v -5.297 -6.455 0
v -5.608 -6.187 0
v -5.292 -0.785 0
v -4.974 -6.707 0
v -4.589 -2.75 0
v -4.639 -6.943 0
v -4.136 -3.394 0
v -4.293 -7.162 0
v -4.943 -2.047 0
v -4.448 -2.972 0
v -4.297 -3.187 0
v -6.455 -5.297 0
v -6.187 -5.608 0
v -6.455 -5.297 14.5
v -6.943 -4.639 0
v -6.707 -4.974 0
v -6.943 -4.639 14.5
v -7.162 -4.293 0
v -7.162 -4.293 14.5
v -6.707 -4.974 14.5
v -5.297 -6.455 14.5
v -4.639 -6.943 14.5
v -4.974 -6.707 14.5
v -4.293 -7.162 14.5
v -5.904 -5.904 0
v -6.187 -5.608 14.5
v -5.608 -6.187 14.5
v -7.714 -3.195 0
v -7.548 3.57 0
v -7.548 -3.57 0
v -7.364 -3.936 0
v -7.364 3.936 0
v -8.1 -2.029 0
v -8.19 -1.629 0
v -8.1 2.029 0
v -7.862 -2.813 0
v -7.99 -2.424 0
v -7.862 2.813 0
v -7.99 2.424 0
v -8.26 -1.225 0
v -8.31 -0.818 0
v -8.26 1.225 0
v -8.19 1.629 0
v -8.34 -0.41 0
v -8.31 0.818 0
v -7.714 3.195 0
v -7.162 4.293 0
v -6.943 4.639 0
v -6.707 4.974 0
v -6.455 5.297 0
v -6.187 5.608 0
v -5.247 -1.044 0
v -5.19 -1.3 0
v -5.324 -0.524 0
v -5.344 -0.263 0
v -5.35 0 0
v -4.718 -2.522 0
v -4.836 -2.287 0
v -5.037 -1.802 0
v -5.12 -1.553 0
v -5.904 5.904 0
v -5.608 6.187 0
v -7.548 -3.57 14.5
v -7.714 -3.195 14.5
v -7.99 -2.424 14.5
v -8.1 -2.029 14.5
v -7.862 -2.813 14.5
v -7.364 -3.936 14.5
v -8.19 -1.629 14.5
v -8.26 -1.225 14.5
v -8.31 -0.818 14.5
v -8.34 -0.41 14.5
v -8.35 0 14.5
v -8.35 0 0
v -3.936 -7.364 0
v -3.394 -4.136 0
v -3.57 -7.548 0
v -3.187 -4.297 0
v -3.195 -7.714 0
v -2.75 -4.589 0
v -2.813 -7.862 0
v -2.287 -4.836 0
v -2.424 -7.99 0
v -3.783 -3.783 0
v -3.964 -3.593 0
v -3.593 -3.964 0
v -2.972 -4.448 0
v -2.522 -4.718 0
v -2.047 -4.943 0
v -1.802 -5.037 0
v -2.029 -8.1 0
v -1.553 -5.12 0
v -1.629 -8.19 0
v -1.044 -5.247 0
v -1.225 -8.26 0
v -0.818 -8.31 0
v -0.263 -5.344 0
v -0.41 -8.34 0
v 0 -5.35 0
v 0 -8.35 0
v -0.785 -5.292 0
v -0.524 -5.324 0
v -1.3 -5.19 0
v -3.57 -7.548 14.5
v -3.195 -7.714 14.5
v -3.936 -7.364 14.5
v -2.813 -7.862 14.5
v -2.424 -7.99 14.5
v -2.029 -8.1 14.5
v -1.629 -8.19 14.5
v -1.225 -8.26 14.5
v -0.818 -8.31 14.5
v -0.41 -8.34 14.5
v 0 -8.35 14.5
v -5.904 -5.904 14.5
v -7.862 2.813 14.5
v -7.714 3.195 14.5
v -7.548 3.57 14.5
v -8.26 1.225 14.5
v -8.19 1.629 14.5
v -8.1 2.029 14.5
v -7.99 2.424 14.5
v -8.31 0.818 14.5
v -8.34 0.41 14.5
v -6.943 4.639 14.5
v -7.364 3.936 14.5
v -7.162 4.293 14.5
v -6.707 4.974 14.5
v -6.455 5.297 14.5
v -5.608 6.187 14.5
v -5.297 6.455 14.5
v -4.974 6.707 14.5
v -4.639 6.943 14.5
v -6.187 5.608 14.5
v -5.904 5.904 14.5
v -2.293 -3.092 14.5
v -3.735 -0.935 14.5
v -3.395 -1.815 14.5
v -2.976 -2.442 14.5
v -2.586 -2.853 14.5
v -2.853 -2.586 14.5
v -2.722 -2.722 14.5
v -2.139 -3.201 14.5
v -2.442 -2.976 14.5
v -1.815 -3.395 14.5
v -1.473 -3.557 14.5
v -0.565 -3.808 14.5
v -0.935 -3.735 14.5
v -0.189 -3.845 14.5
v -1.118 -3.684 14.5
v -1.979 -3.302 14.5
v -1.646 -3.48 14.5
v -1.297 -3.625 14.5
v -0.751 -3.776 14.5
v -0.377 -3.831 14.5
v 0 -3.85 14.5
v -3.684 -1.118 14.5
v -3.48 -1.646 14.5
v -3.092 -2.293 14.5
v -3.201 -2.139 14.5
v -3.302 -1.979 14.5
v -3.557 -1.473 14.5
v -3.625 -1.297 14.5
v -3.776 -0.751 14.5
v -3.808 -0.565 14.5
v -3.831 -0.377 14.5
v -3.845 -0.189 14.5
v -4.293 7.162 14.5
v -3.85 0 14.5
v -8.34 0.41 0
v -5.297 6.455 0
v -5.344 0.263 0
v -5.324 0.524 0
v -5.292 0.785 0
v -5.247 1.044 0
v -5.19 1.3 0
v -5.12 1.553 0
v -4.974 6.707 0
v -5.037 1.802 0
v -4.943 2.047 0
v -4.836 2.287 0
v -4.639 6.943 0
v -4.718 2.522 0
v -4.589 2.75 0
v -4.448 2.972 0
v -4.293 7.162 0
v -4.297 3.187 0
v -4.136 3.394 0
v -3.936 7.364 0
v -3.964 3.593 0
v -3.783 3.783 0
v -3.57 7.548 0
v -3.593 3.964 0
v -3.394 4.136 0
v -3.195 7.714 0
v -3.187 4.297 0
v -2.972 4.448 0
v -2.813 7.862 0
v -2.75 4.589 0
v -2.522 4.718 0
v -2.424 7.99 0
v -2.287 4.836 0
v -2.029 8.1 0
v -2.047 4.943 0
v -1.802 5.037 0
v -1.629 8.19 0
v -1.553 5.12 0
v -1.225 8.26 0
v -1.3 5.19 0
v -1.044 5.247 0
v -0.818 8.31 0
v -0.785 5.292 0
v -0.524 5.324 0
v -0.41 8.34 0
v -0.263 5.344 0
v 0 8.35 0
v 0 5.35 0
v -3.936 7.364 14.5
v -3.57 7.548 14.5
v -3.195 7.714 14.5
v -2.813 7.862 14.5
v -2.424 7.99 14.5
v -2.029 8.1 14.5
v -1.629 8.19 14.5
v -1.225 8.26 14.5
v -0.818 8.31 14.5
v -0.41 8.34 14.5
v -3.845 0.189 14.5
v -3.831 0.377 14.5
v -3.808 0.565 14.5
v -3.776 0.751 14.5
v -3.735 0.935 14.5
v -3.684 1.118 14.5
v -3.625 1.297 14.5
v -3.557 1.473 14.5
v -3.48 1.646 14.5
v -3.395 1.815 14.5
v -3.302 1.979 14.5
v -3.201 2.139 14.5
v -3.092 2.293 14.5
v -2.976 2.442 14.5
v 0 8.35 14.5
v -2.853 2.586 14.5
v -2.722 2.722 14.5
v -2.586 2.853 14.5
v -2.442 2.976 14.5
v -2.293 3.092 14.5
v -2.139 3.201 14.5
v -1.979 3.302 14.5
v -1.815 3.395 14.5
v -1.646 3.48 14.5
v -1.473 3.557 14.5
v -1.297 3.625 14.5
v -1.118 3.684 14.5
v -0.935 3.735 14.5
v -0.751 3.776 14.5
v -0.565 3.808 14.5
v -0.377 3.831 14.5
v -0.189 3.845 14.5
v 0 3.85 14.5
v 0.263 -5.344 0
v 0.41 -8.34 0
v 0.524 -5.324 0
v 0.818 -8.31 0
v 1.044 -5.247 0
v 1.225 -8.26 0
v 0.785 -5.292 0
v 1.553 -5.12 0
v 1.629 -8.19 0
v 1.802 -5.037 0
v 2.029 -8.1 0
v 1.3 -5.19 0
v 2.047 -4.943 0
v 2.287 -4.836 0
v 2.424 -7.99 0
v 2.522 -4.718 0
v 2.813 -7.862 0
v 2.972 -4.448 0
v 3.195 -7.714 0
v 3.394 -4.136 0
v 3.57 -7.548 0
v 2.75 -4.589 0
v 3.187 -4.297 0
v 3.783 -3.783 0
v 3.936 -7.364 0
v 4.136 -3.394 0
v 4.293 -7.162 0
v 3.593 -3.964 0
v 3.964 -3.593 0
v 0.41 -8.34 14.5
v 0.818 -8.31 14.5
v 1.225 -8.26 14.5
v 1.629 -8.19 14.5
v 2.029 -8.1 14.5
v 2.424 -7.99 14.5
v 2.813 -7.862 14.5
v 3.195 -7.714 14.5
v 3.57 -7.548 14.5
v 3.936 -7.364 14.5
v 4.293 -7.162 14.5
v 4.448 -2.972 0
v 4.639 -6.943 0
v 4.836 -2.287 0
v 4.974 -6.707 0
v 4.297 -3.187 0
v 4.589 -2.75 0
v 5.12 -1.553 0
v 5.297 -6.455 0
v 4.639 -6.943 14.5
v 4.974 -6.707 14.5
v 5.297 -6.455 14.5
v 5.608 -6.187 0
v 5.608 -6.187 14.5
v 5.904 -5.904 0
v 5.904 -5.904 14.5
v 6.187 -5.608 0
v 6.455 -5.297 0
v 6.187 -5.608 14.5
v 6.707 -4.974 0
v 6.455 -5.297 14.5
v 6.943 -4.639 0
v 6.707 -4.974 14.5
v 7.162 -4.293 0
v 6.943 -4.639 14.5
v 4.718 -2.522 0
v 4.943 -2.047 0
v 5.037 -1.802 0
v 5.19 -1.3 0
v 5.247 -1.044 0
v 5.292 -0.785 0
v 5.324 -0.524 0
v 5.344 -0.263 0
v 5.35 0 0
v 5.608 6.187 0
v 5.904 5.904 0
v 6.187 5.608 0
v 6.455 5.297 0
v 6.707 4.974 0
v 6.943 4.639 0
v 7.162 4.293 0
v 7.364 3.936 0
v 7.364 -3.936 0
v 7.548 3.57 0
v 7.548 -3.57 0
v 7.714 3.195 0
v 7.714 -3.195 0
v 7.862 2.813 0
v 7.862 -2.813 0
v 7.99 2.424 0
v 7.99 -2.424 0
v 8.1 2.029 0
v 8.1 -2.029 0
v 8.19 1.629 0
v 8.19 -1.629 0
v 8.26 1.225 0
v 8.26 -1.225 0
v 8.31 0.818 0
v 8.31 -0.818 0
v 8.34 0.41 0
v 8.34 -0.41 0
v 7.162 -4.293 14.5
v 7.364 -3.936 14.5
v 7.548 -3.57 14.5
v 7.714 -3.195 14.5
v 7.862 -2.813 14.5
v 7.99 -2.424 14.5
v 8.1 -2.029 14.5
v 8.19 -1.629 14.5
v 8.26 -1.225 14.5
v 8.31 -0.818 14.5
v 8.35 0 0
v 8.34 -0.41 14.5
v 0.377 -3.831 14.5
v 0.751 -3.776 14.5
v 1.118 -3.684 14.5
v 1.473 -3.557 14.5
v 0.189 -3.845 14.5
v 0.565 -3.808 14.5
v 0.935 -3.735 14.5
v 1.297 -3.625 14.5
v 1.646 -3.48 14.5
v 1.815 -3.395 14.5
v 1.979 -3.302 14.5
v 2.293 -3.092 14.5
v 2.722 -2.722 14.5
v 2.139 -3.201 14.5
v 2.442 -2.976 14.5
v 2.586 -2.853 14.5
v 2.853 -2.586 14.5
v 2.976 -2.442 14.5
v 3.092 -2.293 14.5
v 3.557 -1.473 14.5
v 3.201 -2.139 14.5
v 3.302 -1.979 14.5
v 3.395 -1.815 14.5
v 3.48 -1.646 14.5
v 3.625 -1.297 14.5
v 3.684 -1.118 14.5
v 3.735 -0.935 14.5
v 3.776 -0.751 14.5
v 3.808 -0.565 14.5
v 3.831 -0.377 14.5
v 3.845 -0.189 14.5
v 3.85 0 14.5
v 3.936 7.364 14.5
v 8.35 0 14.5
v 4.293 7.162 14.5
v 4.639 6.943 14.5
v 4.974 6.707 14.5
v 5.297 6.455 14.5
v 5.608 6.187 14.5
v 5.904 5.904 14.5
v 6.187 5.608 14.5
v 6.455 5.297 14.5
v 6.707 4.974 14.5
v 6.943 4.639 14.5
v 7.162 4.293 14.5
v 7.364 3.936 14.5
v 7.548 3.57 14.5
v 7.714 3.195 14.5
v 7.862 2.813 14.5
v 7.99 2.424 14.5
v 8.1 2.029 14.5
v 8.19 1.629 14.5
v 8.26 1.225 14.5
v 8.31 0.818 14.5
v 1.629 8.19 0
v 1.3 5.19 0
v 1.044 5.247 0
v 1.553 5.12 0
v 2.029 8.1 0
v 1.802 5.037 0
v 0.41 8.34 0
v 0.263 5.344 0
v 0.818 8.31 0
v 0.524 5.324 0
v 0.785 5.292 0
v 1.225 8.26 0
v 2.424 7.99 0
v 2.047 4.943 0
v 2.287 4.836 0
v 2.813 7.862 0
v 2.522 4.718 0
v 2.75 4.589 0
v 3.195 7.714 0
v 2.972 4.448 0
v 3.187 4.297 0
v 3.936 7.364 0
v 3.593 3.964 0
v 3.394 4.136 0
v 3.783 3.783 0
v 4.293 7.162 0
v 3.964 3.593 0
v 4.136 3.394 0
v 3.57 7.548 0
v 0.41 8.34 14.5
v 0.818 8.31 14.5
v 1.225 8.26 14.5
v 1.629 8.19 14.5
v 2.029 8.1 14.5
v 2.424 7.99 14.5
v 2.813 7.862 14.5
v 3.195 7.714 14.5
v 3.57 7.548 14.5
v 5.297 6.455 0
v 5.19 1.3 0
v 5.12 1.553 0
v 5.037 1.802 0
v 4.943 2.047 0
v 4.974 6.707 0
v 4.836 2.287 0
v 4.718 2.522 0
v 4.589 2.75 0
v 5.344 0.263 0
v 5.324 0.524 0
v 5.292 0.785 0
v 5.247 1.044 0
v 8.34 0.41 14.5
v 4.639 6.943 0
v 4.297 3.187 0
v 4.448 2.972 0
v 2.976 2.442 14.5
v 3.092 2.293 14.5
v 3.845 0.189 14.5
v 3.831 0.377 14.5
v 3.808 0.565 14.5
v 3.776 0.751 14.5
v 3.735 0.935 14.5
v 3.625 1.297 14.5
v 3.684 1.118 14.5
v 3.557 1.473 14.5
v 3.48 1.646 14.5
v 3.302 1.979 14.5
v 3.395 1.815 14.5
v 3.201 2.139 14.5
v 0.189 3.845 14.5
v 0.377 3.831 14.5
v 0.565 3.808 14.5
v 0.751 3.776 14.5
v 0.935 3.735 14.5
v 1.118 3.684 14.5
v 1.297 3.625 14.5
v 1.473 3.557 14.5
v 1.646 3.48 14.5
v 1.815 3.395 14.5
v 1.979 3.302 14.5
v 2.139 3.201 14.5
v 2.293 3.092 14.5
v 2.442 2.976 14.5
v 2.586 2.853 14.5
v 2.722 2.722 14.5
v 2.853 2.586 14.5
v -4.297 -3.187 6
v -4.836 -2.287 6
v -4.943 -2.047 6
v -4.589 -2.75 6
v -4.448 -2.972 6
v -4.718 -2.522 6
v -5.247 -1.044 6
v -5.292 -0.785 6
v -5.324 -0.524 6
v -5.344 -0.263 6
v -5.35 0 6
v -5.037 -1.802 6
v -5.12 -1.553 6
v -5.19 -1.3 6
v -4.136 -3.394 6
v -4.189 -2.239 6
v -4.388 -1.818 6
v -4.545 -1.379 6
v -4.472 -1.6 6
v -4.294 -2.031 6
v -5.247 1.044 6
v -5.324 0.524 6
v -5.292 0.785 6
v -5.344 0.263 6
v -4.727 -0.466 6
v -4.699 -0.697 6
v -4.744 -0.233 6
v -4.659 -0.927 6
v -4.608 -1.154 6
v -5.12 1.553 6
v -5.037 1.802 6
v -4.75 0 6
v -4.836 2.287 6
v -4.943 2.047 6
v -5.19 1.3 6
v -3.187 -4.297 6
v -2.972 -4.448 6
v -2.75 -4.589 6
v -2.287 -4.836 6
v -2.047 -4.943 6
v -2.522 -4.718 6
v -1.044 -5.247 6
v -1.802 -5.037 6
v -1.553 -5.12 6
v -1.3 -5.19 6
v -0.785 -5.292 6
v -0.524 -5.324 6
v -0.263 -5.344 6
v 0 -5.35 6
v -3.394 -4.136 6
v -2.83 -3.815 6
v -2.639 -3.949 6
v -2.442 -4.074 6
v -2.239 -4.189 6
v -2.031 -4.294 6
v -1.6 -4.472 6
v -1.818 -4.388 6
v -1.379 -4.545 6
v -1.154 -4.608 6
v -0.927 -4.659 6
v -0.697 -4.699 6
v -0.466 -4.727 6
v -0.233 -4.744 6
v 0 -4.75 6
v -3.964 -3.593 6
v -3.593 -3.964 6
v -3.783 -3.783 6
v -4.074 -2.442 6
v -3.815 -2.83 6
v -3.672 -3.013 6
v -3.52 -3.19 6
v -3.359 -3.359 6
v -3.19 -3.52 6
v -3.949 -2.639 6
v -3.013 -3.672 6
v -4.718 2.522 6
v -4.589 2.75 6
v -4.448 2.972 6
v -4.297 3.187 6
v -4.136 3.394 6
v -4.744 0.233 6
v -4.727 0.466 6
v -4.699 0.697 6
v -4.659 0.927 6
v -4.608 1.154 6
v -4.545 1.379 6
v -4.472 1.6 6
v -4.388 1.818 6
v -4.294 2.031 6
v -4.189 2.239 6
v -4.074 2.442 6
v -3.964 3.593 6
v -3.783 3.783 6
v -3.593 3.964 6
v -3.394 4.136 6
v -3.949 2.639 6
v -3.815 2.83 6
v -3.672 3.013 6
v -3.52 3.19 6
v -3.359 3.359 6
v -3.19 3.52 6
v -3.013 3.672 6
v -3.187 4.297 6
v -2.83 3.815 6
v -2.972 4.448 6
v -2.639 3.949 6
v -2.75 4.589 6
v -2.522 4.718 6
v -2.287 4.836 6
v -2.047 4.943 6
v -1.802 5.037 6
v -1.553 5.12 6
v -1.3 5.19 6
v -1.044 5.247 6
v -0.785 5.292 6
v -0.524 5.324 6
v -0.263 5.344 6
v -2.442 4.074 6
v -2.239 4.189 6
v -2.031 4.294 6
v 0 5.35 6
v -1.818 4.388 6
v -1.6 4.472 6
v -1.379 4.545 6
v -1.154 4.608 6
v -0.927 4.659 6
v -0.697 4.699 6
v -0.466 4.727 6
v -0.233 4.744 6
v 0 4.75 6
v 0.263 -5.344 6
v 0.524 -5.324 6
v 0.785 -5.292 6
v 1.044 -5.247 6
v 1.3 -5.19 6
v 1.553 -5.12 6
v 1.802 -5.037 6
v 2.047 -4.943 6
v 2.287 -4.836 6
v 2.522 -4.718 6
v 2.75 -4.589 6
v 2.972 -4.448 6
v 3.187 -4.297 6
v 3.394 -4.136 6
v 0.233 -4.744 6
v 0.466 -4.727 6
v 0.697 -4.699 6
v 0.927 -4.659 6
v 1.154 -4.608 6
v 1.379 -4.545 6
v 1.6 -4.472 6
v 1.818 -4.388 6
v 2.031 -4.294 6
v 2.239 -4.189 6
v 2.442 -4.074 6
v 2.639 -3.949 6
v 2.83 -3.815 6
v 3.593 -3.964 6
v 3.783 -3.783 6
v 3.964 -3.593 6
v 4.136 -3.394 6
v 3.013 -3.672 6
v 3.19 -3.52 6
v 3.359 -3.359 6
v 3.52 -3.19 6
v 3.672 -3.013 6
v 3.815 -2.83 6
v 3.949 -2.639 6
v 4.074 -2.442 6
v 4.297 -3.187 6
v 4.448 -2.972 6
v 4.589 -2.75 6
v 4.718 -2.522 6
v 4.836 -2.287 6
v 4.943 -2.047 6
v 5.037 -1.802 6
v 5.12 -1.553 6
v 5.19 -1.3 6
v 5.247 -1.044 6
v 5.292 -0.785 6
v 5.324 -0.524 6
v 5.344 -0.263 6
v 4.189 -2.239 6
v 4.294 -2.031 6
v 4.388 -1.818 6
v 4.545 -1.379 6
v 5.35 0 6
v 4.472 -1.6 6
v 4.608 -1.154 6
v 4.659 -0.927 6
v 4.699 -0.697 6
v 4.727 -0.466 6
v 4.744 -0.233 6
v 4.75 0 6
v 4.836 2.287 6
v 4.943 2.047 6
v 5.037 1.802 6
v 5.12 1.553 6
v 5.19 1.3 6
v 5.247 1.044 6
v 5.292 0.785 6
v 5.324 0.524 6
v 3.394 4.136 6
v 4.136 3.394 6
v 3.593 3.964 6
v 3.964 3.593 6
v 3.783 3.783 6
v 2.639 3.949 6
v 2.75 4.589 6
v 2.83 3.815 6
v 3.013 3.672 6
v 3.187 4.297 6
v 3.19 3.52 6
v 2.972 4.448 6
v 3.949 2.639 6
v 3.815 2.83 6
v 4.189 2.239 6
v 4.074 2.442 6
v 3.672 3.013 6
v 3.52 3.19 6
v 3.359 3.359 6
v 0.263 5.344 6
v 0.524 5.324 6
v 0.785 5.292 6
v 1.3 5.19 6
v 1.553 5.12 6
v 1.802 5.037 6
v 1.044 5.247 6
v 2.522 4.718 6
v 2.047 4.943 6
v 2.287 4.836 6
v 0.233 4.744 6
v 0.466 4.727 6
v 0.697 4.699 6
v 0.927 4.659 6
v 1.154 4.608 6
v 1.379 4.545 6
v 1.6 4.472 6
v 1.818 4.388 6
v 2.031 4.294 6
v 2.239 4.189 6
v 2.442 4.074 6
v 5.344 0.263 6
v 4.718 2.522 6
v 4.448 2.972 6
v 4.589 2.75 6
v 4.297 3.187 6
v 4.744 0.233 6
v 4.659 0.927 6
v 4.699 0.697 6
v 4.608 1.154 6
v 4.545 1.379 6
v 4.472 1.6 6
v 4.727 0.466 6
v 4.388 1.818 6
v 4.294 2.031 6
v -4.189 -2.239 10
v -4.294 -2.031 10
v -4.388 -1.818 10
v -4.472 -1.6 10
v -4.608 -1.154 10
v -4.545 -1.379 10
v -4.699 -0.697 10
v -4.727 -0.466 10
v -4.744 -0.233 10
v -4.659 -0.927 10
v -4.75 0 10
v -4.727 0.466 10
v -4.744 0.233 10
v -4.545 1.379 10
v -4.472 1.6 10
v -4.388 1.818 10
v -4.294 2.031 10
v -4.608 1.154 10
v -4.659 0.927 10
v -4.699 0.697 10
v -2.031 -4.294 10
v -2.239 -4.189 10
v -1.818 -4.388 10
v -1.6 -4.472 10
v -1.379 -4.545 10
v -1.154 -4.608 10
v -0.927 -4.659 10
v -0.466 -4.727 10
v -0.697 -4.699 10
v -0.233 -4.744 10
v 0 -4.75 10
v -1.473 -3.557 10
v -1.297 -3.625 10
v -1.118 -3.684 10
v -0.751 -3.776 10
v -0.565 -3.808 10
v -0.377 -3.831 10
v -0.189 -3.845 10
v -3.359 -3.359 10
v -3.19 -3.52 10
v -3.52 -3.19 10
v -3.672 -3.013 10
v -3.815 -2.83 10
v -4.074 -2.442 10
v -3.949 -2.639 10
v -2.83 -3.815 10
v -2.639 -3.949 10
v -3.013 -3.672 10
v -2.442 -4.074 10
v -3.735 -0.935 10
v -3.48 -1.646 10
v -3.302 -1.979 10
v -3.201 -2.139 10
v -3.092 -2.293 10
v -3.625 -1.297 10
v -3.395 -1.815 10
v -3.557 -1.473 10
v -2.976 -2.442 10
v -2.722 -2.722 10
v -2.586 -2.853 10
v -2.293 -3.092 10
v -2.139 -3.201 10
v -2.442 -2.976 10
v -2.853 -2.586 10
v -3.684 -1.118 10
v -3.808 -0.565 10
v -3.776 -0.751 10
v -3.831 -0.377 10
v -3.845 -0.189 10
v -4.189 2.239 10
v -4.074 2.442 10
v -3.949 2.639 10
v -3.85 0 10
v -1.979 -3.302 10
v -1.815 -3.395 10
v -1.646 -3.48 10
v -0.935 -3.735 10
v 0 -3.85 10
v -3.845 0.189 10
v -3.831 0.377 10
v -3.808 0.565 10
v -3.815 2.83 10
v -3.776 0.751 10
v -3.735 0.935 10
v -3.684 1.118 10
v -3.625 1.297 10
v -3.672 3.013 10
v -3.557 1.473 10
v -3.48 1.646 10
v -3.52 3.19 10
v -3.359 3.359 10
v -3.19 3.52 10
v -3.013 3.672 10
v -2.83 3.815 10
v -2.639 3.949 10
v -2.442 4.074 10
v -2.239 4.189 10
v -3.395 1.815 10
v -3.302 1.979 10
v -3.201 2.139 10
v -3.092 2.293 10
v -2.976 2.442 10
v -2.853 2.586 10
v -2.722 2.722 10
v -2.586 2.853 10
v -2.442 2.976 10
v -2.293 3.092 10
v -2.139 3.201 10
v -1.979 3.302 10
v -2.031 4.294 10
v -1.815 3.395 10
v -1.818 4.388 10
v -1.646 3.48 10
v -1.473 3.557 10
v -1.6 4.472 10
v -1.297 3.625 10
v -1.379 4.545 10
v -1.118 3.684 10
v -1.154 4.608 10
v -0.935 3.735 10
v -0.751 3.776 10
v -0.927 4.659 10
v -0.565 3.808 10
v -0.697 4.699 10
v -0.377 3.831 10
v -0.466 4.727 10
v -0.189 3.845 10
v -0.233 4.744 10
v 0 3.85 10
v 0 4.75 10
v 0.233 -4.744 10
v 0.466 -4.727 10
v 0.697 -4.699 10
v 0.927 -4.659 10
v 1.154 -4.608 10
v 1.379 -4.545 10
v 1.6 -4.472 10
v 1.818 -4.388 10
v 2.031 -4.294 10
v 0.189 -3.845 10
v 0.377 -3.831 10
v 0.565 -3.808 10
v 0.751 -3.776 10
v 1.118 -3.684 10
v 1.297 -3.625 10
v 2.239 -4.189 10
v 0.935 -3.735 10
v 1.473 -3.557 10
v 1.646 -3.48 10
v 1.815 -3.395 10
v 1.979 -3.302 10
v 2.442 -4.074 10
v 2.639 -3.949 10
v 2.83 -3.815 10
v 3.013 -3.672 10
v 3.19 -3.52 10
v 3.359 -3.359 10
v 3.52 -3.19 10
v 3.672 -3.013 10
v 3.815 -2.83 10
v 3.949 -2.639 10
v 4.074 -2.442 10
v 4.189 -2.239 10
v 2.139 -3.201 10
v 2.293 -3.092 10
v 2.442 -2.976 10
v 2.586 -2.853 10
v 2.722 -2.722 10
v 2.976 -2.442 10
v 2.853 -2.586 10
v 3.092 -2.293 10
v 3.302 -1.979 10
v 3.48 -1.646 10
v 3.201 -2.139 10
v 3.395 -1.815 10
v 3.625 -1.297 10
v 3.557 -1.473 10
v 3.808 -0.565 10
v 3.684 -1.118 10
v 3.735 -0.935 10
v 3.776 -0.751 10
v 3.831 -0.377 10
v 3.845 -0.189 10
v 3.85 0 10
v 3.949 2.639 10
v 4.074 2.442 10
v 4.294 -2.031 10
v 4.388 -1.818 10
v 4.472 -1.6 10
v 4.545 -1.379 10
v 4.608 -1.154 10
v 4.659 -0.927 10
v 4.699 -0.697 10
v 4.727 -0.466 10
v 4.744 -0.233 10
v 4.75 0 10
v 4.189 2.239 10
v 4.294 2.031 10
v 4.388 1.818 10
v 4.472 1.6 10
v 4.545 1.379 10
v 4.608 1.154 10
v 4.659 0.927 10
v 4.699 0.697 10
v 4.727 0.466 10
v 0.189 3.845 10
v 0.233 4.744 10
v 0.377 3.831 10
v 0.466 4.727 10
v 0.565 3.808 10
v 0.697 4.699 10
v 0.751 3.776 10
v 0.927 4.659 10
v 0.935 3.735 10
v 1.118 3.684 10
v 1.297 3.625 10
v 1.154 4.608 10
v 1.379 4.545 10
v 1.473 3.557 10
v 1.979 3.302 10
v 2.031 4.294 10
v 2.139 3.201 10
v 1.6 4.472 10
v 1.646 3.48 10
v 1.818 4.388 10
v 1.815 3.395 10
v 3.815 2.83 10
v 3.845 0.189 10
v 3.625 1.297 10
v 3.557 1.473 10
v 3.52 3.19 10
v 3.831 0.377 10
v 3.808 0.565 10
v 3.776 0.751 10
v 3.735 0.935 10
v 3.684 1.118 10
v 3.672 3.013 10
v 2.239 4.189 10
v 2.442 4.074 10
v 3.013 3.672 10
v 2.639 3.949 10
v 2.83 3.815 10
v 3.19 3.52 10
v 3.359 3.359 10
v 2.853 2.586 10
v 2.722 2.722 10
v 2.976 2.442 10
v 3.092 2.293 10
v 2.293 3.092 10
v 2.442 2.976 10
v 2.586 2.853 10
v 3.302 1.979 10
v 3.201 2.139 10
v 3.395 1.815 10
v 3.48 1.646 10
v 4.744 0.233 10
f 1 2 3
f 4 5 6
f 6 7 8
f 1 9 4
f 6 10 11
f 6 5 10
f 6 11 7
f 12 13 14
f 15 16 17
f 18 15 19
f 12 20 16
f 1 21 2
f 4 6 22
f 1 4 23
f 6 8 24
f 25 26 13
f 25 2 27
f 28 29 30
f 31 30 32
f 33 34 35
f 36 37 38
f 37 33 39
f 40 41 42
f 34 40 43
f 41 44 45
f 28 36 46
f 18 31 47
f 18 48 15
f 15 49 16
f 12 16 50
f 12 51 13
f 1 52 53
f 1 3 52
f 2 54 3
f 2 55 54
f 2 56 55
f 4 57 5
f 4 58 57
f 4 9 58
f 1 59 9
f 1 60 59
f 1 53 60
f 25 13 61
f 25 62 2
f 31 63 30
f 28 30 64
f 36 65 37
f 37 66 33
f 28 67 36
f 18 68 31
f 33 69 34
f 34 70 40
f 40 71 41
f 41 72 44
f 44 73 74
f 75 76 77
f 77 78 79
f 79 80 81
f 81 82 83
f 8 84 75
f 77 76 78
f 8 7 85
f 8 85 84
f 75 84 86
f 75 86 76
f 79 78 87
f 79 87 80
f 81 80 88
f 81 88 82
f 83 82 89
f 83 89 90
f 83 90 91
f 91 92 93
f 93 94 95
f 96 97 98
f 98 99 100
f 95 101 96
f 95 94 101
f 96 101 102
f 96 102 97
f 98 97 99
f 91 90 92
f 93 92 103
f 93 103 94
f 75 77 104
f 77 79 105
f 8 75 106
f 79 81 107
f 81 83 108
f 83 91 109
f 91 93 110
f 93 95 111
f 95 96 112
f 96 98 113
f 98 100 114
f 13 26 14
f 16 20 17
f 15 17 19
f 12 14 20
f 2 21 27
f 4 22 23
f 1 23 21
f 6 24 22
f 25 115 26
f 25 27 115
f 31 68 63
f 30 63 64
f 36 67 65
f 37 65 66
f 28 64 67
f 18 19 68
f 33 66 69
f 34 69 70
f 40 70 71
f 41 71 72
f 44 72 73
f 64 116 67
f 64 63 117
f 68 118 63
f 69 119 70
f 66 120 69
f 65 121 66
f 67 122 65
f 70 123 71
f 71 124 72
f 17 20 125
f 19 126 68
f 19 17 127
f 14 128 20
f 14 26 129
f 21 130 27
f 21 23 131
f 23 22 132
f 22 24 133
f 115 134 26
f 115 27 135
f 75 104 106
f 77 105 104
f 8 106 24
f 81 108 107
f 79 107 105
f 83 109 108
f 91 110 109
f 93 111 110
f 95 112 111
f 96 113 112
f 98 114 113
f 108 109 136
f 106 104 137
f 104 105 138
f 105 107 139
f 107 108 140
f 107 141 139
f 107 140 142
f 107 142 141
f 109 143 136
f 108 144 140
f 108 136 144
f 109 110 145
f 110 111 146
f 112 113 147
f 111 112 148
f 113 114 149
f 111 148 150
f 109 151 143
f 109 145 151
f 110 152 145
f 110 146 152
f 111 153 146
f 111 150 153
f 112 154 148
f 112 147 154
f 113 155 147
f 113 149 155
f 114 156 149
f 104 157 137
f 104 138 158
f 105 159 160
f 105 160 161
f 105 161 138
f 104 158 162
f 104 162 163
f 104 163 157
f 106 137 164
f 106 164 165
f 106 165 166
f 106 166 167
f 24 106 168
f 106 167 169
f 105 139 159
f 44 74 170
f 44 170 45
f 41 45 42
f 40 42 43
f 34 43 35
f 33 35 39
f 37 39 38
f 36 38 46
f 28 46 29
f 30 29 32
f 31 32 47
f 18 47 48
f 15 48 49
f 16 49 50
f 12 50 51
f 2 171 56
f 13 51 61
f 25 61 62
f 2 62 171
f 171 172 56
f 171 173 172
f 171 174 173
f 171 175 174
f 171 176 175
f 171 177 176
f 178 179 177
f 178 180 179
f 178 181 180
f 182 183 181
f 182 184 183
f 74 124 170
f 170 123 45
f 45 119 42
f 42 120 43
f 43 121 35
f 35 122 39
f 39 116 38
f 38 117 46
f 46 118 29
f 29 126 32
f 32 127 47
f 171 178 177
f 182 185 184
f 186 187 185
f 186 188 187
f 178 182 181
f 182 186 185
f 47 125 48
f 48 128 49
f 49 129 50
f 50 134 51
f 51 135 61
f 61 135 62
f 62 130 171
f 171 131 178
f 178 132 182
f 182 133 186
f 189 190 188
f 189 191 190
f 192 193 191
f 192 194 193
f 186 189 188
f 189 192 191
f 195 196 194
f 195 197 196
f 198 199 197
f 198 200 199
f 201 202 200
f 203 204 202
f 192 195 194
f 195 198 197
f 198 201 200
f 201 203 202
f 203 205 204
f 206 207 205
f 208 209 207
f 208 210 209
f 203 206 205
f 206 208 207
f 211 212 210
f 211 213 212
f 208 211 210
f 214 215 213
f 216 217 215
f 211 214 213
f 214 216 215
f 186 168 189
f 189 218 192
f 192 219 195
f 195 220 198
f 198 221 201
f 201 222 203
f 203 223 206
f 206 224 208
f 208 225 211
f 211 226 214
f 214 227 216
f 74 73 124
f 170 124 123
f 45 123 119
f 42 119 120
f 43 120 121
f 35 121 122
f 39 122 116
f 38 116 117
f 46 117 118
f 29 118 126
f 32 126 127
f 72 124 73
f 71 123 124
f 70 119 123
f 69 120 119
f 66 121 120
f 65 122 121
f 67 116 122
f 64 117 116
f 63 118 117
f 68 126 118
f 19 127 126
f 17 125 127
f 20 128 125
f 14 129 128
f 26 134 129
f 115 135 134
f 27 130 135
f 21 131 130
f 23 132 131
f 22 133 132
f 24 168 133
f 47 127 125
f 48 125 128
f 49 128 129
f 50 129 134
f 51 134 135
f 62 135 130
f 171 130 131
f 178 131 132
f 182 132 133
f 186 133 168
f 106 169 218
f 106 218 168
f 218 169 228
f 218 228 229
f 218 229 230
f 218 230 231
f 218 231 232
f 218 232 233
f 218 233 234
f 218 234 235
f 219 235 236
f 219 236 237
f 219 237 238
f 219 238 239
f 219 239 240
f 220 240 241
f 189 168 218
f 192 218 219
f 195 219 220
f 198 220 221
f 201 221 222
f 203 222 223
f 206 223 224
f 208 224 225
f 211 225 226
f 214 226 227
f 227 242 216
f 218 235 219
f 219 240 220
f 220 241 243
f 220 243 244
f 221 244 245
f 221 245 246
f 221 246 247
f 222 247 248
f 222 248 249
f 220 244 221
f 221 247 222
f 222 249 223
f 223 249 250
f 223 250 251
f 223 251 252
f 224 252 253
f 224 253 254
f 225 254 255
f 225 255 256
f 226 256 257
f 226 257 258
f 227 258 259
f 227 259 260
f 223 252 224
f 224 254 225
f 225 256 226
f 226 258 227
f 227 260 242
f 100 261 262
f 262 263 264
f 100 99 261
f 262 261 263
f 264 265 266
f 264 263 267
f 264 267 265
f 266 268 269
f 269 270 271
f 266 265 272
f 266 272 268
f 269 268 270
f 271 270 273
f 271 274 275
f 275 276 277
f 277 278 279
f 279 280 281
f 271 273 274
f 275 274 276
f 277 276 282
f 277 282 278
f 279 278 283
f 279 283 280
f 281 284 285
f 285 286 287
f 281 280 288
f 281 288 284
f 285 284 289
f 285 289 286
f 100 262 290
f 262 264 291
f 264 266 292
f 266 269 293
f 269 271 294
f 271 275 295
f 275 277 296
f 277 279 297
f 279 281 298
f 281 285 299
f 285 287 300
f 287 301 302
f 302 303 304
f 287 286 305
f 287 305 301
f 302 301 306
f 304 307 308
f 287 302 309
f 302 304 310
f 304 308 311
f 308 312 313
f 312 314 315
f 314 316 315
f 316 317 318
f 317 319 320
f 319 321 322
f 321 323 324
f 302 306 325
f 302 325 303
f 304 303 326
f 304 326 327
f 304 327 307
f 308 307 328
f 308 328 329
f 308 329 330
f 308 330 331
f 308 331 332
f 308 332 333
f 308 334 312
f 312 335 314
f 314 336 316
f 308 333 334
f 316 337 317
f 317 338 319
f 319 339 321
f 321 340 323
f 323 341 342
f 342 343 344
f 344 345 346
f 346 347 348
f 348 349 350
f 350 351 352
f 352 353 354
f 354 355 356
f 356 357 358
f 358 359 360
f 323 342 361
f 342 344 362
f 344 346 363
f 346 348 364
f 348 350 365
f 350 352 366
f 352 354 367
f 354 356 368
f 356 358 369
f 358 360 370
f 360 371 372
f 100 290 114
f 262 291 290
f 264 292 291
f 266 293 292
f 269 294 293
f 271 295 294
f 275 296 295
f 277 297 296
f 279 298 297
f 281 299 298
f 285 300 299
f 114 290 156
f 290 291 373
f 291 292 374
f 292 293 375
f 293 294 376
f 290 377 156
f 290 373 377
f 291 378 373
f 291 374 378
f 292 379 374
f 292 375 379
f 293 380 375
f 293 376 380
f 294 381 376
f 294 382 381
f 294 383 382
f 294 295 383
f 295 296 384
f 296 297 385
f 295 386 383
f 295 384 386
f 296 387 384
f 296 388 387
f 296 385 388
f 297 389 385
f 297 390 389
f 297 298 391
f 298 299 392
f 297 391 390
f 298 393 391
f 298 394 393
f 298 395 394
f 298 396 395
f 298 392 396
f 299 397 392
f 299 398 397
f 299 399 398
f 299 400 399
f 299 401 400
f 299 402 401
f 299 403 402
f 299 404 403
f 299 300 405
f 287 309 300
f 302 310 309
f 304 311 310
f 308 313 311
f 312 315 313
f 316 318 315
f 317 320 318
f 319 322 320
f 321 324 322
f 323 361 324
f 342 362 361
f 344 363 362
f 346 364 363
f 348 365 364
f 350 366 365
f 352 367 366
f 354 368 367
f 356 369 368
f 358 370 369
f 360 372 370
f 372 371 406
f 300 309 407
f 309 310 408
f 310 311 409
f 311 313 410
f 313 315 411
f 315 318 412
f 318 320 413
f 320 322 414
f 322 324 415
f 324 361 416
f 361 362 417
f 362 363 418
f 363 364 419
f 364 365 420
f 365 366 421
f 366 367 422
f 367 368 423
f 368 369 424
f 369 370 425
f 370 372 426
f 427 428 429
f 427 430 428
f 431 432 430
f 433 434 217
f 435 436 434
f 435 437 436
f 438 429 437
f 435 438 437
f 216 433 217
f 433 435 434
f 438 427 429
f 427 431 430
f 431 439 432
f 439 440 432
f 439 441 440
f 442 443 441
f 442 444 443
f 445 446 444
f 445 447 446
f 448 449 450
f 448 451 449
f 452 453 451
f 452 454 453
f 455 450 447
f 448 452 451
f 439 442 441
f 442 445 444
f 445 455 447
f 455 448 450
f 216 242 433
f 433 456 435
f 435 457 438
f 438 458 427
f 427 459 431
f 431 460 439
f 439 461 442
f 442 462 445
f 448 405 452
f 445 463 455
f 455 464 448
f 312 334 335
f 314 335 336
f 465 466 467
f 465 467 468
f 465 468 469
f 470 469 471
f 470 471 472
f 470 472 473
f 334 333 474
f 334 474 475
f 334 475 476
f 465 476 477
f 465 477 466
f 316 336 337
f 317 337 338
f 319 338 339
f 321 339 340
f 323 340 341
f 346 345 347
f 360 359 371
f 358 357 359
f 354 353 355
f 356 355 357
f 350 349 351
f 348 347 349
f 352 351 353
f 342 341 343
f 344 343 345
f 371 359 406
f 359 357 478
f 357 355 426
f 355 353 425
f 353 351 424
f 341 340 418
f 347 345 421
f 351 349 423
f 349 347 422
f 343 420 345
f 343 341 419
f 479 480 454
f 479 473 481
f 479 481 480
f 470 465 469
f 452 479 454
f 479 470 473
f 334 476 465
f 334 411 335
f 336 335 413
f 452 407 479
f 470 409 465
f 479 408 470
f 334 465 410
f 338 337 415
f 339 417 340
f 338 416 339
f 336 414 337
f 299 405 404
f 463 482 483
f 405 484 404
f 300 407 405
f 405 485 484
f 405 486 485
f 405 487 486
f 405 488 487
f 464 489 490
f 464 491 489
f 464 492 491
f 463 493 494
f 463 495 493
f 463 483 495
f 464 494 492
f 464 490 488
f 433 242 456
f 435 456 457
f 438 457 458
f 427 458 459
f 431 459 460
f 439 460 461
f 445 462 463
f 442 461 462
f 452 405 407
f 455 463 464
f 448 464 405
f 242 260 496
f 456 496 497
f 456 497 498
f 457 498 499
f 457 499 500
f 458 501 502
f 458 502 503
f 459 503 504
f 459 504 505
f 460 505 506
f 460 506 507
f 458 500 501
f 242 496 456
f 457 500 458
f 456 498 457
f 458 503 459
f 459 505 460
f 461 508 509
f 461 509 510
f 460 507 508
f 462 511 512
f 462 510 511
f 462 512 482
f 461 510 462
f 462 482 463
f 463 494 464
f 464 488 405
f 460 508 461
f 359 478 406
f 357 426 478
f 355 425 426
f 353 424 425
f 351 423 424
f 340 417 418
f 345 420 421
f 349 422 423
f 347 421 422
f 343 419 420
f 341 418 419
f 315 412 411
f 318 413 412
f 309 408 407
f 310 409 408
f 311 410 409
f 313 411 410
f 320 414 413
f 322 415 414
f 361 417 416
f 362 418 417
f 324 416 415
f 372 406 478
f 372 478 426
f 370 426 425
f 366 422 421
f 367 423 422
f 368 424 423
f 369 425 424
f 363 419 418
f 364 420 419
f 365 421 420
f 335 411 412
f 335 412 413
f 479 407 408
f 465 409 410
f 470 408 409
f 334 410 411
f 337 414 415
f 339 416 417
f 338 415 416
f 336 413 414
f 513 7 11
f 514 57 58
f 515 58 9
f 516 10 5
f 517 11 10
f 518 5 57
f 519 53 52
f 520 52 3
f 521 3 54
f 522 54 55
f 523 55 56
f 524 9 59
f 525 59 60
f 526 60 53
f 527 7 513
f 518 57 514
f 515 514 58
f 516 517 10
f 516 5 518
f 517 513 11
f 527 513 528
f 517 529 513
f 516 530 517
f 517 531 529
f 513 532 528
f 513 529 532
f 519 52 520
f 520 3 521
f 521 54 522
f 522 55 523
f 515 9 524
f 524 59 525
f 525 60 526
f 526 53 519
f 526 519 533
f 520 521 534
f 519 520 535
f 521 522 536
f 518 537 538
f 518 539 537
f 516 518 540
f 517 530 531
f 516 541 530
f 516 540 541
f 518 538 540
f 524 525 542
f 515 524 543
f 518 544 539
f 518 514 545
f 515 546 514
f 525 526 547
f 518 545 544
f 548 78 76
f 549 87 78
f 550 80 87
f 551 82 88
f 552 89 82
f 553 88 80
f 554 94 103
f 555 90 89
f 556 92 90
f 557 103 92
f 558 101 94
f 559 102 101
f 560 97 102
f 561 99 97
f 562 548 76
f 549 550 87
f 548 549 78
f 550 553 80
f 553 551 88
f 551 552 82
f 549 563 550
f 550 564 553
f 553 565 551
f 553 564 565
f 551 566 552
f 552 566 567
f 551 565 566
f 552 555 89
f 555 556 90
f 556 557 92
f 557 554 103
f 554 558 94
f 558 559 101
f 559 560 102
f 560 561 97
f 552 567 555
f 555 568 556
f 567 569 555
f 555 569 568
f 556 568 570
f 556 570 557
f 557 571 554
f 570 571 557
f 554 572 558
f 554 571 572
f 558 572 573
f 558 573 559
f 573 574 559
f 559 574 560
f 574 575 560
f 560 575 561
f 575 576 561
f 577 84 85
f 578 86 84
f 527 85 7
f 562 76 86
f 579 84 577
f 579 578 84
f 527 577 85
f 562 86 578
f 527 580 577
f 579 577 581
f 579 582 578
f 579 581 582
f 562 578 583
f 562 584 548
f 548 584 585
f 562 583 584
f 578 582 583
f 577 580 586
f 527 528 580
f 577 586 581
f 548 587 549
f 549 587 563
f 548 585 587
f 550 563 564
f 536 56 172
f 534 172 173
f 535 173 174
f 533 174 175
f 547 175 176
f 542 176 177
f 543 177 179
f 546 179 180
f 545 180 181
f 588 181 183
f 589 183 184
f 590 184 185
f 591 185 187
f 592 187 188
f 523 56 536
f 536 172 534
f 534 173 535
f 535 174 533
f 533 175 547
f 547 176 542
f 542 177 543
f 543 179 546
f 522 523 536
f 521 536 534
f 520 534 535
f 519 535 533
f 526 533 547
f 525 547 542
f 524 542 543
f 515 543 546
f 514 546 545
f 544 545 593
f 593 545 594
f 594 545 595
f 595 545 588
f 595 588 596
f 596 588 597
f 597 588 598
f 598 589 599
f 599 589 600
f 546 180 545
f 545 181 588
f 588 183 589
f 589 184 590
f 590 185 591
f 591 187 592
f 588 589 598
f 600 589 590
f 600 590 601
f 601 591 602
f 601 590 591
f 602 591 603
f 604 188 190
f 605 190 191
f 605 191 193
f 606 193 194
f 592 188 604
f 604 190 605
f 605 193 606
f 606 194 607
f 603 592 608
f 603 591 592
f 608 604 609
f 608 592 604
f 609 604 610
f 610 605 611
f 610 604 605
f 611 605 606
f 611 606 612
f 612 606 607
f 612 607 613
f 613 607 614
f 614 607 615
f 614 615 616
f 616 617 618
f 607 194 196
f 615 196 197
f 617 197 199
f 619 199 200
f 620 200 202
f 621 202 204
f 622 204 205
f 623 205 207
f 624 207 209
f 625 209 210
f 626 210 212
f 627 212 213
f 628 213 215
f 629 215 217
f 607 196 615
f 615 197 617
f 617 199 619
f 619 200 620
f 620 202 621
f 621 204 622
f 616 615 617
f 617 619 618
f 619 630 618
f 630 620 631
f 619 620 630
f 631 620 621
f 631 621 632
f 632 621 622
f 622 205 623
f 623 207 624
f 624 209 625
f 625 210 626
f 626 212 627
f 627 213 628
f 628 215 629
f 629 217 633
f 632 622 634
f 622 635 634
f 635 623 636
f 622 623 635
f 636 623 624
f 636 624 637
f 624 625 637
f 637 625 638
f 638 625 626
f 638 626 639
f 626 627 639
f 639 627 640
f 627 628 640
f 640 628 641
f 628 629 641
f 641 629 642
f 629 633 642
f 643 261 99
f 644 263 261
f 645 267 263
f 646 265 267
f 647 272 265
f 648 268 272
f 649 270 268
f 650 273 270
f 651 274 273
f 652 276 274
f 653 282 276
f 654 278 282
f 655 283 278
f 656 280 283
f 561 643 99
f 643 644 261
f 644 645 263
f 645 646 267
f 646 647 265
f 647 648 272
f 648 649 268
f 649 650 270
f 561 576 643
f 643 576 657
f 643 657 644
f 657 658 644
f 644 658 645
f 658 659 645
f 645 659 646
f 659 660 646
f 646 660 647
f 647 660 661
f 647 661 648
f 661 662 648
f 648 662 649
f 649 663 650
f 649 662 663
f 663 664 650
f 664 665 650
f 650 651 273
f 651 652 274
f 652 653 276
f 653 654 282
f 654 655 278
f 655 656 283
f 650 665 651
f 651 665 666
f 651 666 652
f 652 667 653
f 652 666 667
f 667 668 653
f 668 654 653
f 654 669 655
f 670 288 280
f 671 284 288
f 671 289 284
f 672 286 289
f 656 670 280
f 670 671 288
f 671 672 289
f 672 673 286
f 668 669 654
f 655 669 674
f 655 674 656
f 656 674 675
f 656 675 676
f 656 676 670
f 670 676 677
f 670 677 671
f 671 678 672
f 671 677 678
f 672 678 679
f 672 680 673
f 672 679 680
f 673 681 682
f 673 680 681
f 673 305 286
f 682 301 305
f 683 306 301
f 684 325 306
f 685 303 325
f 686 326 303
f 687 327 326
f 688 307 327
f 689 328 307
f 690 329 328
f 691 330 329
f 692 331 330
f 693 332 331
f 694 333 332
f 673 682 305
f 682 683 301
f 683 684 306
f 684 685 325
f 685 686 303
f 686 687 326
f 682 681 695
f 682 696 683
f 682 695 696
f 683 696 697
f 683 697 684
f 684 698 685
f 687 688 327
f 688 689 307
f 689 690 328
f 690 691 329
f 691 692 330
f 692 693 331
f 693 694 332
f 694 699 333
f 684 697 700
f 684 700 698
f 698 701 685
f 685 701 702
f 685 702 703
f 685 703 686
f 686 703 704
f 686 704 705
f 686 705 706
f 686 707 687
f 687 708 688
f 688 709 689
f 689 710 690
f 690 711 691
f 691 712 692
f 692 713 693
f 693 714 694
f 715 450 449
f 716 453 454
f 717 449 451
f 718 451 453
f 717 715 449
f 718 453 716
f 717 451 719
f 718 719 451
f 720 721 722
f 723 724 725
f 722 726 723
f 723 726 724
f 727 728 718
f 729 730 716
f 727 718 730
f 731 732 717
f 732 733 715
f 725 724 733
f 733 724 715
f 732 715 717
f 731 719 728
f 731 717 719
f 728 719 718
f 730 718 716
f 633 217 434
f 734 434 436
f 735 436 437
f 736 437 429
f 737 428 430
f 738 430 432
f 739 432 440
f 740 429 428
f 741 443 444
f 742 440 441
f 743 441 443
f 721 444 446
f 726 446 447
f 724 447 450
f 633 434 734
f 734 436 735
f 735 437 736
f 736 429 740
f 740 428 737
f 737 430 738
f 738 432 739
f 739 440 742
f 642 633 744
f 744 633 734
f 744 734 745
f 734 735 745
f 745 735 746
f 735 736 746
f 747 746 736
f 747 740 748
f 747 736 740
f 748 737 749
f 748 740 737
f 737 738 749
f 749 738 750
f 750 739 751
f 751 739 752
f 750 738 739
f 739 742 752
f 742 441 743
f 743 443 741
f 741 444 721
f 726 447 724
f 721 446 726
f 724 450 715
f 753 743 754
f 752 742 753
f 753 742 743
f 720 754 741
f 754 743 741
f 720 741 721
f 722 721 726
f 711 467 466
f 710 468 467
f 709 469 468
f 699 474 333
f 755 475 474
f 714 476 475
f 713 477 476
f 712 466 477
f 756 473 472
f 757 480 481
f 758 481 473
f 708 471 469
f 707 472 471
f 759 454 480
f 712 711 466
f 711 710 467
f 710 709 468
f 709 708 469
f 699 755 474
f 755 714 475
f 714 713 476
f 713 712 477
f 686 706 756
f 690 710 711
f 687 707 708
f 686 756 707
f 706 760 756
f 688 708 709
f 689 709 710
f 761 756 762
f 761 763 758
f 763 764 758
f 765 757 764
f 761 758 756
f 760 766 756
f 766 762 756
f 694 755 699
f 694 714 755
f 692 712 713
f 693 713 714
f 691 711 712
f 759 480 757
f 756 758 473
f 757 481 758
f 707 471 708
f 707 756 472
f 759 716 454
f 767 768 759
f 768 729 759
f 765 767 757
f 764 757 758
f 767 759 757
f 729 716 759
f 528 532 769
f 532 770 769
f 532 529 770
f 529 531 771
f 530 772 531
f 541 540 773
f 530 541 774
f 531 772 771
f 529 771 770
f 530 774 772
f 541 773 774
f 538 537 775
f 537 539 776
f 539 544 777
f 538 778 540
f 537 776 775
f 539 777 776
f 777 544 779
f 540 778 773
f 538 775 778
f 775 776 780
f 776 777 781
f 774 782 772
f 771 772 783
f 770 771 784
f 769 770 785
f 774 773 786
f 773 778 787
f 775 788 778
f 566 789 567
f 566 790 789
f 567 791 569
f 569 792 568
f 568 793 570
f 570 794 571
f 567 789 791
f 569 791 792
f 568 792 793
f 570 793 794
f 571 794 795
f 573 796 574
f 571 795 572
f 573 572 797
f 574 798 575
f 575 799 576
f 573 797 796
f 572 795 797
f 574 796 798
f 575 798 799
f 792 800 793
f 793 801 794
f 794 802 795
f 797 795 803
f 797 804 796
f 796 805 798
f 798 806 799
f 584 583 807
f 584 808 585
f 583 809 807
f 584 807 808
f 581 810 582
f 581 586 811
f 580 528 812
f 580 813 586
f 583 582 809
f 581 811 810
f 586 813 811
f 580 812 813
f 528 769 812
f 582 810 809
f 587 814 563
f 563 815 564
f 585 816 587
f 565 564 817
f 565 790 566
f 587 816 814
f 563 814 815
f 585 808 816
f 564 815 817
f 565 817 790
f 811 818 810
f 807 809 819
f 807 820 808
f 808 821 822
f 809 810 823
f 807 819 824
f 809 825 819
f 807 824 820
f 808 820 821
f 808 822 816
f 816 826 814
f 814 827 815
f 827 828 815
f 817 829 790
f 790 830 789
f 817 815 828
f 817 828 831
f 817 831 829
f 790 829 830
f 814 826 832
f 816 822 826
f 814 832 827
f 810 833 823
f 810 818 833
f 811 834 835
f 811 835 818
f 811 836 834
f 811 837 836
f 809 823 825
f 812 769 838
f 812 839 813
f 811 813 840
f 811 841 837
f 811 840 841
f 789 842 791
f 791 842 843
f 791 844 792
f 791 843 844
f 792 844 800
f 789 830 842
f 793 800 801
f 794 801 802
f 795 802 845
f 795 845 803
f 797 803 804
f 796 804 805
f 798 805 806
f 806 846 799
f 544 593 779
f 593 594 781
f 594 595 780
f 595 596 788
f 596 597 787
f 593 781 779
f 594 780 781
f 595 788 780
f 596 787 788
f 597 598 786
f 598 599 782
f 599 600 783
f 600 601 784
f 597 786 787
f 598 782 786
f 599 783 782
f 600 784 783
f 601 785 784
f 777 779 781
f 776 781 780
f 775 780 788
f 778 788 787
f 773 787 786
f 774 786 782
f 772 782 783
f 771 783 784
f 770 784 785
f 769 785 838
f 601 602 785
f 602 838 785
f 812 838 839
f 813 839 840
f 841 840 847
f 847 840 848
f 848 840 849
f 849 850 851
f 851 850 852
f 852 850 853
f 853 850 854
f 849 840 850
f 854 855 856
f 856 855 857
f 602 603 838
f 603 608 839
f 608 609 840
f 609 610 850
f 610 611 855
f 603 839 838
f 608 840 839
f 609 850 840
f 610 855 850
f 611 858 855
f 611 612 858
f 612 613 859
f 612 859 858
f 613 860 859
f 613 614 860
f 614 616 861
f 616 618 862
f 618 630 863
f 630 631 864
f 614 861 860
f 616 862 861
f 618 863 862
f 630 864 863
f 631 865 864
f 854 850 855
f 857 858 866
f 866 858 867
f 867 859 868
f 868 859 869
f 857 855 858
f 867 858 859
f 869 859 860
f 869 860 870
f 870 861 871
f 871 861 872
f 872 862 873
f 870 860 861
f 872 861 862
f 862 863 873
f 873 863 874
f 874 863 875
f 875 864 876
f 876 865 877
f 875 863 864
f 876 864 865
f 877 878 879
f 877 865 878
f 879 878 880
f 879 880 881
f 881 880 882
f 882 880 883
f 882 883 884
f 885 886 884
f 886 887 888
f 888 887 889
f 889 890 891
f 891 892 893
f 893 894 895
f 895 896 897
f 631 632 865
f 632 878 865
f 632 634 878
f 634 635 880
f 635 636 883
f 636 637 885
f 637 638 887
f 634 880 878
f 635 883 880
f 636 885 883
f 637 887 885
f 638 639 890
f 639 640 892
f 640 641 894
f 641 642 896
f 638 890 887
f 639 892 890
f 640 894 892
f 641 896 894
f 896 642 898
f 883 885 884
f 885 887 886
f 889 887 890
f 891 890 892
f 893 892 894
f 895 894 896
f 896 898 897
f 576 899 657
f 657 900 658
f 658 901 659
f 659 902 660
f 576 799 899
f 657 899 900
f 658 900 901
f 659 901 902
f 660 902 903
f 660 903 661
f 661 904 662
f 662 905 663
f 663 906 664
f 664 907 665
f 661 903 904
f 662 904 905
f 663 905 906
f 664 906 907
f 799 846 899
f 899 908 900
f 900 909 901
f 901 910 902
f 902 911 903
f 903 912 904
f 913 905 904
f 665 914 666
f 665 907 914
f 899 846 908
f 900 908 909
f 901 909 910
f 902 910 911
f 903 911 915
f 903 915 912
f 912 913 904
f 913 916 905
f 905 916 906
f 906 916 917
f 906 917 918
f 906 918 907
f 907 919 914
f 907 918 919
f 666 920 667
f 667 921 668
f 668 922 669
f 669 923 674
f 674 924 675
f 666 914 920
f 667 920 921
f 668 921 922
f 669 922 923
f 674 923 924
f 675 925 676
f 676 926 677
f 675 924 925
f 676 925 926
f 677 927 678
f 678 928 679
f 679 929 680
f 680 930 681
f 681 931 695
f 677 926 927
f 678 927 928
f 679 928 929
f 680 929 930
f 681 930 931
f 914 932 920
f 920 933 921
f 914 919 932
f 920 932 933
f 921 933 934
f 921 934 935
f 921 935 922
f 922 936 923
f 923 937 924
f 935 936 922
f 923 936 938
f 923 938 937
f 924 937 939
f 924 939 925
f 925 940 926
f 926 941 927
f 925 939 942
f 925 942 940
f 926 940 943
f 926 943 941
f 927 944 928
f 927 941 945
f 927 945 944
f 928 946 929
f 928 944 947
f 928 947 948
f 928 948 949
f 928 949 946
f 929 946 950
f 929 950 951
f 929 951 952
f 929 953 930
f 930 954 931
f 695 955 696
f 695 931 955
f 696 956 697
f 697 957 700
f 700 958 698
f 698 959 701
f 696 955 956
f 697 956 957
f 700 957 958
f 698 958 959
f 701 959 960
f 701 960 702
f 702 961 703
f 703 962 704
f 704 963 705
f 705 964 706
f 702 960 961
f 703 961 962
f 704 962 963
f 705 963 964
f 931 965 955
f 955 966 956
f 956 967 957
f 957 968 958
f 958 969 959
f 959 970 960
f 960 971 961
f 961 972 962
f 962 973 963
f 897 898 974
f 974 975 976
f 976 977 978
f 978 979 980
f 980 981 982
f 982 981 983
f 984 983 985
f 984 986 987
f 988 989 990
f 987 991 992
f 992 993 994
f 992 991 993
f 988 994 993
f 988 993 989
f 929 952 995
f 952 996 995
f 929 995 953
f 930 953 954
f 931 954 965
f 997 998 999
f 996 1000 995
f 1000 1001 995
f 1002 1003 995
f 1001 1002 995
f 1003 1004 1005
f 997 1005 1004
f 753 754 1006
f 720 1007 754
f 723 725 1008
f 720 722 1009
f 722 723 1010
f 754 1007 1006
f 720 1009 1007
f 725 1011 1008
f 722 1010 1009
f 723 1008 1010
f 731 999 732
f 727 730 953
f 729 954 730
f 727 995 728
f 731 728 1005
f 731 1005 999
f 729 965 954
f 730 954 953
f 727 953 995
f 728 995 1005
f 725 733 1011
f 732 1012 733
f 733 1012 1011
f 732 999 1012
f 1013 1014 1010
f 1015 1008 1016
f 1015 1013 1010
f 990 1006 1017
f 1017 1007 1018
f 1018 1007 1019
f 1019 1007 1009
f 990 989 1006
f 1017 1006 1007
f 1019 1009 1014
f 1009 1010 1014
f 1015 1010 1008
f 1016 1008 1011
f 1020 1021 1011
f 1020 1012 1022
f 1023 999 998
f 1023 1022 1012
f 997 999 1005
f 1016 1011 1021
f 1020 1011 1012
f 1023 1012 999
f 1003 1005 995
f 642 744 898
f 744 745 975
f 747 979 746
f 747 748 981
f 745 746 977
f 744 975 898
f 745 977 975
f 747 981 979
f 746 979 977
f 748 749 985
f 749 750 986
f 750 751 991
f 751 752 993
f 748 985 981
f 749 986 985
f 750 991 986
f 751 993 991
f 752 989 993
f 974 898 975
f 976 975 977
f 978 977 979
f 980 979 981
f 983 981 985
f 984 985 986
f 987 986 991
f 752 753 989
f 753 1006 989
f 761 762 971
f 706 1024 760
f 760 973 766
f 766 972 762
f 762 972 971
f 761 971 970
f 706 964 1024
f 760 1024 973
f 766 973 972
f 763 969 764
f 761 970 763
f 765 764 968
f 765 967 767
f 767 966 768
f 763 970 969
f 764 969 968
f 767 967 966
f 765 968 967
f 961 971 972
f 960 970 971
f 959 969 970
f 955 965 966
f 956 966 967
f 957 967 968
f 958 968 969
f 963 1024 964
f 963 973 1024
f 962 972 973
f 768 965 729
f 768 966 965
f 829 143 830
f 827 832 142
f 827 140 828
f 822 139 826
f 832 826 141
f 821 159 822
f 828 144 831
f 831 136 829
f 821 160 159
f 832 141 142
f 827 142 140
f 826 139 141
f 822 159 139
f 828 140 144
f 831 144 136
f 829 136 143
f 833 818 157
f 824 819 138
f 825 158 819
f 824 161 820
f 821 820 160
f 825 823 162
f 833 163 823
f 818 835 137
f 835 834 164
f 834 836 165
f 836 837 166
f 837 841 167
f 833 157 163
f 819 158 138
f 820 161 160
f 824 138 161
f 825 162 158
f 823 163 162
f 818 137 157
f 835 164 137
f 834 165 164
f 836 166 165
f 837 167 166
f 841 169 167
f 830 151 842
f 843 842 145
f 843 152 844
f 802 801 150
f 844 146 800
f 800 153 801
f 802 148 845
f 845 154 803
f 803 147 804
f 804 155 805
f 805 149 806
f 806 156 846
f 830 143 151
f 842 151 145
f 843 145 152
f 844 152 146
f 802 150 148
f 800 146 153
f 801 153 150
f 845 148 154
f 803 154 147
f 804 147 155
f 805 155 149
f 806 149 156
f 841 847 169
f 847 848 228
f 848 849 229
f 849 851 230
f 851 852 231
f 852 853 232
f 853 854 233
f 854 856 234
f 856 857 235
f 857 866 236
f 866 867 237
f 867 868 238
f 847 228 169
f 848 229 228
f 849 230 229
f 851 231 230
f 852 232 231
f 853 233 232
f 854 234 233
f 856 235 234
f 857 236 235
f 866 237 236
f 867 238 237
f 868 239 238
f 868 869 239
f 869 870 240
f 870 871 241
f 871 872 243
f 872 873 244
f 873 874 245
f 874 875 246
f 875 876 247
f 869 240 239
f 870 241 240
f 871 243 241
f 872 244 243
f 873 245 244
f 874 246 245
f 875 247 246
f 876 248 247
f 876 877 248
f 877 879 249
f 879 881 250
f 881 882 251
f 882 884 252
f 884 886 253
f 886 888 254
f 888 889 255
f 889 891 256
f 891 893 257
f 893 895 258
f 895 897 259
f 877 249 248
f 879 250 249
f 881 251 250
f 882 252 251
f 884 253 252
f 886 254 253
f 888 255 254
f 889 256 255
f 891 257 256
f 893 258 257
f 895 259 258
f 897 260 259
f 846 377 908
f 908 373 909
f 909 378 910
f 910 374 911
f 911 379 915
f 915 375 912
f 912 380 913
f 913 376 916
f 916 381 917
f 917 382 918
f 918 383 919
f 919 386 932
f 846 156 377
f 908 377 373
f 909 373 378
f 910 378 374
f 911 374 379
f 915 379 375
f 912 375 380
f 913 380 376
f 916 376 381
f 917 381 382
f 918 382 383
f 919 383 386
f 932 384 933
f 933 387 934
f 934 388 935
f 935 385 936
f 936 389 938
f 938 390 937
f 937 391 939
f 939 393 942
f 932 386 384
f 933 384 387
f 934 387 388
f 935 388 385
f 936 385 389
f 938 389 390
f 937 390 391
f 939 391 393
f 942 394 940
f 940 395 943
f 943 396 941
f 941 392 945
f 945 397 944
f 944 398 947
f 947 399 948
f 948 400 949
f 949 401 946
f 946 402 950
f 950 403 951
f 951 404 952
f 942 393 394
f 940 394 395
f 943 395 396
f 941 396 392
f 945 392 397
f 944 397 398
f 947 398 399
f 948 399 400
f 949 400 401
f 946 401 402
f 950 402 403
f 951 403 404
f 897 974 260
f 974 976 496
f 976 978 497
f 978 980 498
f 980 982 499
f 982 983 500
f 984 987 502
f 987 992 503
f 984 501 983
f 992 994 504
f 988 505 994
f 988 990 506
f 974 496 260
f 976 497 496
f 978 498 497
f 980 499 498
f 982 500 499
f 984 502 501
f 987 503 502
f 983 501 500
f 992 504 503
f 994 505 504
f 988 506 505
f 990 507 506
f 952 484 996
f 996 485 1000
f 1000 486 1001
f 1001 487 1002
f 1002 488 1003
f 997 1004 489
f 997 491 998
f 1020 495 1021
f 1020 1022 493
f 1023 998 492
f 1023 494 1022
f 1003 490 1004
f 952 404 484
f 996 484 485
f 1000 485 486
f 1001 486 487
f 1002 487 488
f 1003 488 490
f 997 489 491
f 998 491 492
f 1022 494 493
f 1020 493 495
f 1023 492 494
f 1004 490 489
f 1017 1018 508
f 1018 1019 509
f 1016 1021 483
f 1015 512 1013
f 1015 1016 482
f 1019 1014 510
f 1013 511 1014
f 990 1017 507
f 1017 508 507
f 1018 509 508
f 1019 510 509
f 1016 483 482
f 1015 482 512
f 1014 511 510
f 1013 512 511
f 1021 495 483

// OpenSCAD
// file: config.scad
$fn = 128;

laser_length_0 = 6;
laser_length_1 = 10;
laser_length_2 = 14.5;
laser_radius_0 = 10.7 / 2;
laser_radius_1 = 9.5 / 2;
laser_radius_2 = 7.7 / 2;

laser_sleeve_thickness = 3;
laser_sleeve_radius = laser_sleeve_thickness + laser_radius_0;

laser_inset = (laser_sleeve_radius - laser_radius_0) / 2;

bolt_hex_width = 8.3;
bolt_hex_length = 20;
bolt_mount_thickness = 3; 
bolt_mount_width = bolt_hex_width + bolt_mount_thickness * 2;
bolt_cap = 3;
 
// main file
include <config.scad>


module laser_mount() {
	difference() {
		cylinder(laser_length_2, laser_sleeve_radius, laser_sleeve_radius);
		cylinder(laser_length_0, laser_radius_0, laser_radius_0);
		cylinder(laser_length_1, laser_radius_1, laser_radius_1);
		cylinder(laser_length_2, laser_radius_2, laser_radius_2);
	}
}

laser_mount();
